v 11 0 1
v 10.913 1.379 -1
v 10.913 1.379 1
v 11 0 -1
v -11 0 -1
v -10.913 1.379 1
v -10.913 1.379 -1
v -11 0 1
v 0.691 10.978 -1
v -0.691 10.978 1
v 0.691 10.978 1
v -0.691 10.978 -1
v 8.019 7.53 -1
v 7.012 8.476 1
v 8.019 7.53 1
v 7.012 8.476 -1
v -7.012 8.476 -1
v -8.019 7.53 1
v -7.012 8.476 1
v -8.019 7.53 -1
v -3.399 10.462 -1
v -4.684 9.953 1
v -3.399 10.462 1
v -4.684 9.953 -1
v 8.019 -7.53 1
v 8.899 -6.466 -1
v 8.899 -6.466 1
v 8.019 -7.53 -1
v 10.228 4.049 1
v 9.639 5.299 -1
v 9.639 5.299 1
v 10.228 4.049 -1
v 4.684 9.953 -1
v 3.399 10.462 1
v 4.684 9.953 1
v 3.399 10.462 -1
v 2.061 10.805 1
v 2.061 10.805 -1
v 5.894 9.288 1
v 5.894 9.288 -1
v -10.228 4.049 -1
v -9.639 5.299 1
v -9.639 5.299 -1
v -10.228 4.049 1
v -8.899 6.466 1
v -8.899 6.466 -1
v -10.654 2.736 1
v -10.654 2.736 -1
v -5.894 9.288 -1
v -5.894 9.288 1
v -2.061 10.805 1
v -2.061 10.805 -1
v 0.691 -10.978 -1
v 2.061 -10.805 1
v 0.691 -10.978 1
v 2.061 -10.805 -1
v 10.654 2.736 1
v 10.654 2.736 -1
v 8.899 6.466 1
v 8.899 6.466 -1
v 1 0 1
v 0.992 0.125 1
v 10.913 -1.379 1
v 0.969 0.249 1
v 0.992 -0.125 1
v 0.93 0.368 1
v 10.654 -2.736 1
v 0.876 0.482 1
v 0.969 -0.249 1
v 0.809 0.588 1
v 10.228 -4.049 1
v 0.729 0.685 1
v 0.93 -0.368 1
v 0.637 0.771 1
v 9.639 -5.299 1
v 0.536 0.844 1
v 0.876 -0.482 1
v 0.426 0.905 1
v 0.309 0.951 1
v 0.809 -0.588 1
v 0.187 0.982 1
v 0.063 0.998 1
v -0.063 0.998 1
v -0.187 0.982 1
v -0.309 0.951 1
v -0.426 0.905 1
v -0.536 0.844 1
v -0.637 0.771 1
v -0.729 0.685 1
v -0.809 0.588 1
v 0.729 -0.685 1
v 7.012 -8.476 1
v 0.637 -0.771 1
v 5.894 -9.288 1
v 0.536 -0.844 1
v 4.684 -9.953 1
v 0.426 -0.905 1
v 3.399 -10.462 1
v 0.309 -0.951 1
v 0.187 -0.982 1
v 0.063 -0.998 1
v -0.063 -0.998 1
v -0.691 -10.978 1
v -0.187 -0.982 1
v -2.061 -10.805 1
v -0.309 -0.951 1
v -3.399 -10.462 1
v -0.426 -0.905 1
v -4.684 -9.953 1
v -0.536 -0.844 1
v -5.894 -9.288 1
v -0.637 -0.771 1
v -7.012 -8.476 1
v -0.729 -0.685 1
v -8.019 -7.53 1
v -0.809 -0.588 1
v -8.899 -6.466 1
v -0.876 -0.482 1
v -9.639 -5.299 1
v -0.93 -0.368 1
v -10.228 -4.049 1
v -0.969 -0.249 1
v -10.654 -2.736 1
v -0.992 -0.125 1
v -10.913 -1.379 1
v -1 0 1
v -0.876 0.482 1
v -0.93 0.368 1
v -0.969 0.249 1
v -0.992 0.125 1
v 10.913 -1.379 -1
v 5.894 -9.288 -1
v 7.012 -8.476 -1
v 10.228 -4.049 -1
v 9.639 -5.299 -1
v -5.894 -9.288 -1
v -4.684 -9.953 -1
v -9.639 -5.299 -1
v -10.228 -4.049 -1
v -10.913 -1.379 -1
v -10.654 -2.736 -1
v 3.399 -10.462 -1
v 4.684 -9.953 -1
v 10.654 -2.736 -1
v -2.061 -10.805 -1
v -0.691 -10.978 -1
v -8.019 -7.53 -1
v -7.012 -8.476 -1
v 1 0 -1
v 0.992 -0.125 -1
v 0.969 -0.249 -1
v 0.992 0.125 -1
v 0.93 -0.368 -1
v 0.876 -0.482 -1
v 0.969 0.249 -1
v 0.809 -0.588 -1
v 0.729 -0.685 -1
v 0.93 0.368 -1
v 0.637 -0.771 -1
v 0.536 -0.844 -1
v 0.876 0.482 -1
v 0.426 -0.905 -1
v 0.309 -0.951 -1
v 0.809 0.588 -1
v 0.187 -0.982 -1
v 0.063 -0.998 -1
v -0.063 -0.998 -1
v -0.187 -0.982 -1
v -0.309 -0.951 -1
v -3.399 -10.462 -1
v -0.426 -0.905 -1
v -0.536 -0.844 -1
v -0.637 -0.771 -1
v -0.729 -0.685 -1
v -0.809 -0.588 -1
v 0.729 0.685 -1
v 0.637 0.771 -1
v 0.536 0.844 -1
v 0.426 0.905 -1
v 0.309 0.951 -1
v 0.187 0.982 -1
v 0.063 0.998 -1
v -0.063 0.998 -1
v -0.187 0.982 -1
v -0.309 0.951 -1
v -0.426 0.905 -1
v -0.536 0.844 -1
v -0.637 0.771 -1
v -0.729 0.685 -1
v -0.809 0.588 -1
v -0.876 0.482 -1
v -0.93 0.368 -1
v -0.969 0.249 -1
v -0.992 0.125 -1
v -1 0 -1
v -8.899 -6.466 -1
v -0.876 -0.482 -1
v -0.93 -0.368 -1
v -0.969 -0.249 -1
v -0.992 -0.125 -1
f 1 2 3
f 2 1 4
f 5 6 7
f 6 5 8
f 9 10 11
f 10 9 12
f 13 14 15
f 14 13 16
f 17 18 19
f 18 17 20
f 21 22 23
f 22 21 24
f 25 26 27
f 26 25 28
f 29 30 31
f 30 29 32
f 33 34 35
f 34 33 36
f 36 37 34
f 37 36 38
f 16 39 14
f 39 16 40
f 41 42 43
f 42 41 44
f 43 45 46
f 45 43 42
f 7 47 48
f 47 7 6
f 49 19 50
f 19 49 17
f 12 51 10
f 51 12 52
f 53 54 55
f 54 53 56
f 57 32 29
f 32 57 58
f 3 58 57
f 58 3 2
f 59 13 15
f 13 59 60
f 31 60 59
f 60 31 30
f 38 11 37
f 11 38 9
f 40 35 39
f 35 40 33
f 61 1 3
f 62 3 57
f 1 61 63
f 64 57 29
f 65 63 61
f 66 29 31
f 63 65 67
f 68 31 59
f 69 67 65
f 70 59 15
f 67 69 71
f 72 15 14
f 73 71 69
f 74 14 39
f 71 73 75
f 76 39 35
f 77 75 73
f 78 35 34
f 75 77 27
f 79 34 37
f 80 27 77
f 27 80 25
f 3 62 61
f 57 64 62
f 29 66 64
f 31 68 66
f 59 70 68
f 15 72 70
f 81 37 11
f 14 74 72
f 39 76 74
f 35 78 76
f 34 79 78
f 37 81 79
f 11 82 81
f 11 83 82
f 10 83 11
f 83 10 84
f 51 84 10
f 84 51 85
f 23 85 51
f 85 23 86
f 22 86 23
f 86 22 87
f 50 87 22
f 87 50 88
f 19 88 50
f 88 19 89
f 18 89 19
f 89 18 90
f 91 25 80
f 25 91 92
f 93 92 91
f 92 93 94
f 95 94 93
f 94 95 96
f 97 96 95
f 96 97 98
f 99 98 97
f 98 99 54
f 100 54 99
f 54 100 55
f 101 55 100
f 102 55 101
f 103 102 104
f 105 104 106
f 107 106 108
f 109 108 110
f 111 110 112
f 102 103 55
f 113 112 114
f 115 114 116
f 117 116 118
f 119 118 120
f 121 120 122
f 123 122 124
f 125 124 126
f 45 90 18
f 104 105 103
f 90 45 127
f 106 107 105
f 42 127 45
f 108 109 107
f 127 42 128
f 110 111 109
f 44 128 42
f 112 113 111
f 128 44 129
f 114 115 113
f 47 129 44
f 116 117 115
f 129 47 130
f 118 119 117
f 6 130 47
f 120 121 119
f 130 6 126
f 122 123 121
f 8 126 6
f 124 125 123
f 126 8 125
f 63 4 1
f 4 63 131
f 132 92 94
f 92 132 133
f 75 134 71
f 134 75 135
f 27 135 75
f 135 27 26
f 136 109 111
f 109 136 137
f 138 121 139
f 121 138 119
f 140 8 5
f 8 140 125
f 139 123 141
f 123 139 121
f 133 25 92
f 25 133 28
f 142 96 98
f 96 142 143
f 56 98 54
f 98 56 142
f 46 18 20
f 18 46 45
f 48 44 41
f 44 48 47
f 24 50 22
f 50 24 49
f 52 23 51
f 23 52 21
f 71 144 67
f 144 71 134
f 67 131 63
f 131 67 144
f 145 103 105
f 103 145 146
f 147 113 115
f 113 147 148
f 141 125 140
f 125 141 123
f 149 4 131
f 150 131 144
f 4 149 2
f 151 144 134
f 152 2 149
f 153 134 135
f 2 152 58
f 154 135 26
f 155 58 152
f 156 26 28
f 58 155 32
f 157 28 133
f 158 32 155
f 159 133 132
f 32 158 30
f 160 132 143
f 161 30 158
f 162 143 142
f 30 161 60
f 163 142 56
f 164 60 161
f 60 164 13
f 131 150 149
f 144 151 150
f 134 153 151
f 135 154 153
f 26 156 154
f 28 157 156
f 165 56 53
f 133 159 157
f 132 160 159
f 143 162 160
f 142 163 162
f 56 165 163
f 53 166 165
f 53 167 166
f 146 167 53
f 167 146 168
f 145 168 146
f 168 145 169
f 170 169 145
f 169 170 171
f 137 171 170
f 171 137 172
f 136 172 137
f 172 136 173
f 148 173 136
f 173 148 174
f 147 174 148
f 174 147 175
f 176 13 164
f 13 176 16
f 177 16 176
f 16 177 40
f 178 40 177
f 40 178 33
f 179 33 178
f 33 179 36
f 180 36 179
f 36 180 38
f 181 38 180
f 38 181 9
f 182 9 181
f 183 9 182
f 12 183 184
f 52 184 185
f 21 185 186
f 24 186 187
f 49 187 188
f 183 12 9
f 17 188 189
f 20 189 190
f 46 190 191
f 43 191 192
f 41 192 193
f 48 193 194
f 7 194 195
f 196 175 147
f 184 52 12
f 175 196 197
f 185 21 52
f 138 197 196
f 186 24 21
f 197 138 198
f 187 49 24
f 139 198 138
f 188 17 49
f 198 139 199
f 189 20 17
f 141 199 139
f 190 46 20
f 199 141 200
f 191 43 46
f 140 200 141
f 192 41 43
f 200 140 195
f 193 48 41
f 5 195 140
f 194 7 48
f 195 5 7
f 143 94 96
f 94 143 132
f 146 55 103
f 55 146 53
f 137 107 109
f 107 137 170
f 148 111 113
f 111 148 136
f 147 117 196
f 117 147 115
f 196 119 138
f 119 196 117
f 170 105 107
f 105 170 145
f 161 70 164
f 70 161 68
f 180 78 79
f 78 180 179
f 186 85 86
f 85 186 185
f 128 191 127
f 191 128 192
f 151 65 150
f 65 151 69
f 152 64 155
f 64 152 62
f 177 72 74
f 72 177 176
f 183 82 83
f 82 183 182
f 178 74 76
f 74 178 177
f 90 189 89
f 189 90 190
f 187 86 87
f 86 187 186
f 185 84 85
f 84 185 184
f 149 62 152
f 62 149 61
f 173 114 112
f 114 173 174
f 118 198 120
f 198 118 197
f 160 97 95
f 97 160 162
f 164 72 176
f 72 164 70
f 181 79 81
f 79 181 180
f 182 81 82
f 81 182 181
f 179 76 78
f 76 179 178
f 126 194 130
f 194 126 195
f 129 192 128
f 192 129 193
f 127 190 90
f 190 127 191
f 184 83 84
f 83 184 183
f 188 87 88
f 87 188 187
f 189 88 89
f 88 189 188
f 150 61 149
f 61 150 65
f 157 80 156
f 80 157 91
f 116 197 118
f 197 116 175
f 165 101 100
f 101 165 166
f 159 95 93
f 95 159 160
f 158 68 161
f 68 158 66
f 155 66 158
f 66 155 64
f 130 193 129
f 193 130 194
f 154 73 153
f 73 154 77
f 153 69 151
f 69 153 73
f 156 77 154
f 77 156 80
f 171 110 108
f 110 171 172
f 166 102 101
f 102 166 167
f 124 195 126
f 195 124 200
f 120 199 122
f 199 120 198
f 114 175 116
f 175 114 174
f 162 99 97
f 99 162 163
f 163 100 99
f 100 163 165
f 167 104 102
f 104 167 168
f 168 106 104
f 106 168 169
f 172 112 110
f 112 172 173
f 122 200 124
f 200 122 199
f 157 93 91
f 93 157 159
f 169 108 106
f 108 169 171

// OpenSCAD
$fn = 50;


difference() {
	union() {
		translate(v = [0, 0, -1.0000000000]) {
			cylinder(h = 2, r = 11.0000000000);
		}
	}
	union() {
		translate(v = [0, 0, -100.0000000000]) {
			cylinder(h = 200, r = 1.0000000000);
		}
	}
}
